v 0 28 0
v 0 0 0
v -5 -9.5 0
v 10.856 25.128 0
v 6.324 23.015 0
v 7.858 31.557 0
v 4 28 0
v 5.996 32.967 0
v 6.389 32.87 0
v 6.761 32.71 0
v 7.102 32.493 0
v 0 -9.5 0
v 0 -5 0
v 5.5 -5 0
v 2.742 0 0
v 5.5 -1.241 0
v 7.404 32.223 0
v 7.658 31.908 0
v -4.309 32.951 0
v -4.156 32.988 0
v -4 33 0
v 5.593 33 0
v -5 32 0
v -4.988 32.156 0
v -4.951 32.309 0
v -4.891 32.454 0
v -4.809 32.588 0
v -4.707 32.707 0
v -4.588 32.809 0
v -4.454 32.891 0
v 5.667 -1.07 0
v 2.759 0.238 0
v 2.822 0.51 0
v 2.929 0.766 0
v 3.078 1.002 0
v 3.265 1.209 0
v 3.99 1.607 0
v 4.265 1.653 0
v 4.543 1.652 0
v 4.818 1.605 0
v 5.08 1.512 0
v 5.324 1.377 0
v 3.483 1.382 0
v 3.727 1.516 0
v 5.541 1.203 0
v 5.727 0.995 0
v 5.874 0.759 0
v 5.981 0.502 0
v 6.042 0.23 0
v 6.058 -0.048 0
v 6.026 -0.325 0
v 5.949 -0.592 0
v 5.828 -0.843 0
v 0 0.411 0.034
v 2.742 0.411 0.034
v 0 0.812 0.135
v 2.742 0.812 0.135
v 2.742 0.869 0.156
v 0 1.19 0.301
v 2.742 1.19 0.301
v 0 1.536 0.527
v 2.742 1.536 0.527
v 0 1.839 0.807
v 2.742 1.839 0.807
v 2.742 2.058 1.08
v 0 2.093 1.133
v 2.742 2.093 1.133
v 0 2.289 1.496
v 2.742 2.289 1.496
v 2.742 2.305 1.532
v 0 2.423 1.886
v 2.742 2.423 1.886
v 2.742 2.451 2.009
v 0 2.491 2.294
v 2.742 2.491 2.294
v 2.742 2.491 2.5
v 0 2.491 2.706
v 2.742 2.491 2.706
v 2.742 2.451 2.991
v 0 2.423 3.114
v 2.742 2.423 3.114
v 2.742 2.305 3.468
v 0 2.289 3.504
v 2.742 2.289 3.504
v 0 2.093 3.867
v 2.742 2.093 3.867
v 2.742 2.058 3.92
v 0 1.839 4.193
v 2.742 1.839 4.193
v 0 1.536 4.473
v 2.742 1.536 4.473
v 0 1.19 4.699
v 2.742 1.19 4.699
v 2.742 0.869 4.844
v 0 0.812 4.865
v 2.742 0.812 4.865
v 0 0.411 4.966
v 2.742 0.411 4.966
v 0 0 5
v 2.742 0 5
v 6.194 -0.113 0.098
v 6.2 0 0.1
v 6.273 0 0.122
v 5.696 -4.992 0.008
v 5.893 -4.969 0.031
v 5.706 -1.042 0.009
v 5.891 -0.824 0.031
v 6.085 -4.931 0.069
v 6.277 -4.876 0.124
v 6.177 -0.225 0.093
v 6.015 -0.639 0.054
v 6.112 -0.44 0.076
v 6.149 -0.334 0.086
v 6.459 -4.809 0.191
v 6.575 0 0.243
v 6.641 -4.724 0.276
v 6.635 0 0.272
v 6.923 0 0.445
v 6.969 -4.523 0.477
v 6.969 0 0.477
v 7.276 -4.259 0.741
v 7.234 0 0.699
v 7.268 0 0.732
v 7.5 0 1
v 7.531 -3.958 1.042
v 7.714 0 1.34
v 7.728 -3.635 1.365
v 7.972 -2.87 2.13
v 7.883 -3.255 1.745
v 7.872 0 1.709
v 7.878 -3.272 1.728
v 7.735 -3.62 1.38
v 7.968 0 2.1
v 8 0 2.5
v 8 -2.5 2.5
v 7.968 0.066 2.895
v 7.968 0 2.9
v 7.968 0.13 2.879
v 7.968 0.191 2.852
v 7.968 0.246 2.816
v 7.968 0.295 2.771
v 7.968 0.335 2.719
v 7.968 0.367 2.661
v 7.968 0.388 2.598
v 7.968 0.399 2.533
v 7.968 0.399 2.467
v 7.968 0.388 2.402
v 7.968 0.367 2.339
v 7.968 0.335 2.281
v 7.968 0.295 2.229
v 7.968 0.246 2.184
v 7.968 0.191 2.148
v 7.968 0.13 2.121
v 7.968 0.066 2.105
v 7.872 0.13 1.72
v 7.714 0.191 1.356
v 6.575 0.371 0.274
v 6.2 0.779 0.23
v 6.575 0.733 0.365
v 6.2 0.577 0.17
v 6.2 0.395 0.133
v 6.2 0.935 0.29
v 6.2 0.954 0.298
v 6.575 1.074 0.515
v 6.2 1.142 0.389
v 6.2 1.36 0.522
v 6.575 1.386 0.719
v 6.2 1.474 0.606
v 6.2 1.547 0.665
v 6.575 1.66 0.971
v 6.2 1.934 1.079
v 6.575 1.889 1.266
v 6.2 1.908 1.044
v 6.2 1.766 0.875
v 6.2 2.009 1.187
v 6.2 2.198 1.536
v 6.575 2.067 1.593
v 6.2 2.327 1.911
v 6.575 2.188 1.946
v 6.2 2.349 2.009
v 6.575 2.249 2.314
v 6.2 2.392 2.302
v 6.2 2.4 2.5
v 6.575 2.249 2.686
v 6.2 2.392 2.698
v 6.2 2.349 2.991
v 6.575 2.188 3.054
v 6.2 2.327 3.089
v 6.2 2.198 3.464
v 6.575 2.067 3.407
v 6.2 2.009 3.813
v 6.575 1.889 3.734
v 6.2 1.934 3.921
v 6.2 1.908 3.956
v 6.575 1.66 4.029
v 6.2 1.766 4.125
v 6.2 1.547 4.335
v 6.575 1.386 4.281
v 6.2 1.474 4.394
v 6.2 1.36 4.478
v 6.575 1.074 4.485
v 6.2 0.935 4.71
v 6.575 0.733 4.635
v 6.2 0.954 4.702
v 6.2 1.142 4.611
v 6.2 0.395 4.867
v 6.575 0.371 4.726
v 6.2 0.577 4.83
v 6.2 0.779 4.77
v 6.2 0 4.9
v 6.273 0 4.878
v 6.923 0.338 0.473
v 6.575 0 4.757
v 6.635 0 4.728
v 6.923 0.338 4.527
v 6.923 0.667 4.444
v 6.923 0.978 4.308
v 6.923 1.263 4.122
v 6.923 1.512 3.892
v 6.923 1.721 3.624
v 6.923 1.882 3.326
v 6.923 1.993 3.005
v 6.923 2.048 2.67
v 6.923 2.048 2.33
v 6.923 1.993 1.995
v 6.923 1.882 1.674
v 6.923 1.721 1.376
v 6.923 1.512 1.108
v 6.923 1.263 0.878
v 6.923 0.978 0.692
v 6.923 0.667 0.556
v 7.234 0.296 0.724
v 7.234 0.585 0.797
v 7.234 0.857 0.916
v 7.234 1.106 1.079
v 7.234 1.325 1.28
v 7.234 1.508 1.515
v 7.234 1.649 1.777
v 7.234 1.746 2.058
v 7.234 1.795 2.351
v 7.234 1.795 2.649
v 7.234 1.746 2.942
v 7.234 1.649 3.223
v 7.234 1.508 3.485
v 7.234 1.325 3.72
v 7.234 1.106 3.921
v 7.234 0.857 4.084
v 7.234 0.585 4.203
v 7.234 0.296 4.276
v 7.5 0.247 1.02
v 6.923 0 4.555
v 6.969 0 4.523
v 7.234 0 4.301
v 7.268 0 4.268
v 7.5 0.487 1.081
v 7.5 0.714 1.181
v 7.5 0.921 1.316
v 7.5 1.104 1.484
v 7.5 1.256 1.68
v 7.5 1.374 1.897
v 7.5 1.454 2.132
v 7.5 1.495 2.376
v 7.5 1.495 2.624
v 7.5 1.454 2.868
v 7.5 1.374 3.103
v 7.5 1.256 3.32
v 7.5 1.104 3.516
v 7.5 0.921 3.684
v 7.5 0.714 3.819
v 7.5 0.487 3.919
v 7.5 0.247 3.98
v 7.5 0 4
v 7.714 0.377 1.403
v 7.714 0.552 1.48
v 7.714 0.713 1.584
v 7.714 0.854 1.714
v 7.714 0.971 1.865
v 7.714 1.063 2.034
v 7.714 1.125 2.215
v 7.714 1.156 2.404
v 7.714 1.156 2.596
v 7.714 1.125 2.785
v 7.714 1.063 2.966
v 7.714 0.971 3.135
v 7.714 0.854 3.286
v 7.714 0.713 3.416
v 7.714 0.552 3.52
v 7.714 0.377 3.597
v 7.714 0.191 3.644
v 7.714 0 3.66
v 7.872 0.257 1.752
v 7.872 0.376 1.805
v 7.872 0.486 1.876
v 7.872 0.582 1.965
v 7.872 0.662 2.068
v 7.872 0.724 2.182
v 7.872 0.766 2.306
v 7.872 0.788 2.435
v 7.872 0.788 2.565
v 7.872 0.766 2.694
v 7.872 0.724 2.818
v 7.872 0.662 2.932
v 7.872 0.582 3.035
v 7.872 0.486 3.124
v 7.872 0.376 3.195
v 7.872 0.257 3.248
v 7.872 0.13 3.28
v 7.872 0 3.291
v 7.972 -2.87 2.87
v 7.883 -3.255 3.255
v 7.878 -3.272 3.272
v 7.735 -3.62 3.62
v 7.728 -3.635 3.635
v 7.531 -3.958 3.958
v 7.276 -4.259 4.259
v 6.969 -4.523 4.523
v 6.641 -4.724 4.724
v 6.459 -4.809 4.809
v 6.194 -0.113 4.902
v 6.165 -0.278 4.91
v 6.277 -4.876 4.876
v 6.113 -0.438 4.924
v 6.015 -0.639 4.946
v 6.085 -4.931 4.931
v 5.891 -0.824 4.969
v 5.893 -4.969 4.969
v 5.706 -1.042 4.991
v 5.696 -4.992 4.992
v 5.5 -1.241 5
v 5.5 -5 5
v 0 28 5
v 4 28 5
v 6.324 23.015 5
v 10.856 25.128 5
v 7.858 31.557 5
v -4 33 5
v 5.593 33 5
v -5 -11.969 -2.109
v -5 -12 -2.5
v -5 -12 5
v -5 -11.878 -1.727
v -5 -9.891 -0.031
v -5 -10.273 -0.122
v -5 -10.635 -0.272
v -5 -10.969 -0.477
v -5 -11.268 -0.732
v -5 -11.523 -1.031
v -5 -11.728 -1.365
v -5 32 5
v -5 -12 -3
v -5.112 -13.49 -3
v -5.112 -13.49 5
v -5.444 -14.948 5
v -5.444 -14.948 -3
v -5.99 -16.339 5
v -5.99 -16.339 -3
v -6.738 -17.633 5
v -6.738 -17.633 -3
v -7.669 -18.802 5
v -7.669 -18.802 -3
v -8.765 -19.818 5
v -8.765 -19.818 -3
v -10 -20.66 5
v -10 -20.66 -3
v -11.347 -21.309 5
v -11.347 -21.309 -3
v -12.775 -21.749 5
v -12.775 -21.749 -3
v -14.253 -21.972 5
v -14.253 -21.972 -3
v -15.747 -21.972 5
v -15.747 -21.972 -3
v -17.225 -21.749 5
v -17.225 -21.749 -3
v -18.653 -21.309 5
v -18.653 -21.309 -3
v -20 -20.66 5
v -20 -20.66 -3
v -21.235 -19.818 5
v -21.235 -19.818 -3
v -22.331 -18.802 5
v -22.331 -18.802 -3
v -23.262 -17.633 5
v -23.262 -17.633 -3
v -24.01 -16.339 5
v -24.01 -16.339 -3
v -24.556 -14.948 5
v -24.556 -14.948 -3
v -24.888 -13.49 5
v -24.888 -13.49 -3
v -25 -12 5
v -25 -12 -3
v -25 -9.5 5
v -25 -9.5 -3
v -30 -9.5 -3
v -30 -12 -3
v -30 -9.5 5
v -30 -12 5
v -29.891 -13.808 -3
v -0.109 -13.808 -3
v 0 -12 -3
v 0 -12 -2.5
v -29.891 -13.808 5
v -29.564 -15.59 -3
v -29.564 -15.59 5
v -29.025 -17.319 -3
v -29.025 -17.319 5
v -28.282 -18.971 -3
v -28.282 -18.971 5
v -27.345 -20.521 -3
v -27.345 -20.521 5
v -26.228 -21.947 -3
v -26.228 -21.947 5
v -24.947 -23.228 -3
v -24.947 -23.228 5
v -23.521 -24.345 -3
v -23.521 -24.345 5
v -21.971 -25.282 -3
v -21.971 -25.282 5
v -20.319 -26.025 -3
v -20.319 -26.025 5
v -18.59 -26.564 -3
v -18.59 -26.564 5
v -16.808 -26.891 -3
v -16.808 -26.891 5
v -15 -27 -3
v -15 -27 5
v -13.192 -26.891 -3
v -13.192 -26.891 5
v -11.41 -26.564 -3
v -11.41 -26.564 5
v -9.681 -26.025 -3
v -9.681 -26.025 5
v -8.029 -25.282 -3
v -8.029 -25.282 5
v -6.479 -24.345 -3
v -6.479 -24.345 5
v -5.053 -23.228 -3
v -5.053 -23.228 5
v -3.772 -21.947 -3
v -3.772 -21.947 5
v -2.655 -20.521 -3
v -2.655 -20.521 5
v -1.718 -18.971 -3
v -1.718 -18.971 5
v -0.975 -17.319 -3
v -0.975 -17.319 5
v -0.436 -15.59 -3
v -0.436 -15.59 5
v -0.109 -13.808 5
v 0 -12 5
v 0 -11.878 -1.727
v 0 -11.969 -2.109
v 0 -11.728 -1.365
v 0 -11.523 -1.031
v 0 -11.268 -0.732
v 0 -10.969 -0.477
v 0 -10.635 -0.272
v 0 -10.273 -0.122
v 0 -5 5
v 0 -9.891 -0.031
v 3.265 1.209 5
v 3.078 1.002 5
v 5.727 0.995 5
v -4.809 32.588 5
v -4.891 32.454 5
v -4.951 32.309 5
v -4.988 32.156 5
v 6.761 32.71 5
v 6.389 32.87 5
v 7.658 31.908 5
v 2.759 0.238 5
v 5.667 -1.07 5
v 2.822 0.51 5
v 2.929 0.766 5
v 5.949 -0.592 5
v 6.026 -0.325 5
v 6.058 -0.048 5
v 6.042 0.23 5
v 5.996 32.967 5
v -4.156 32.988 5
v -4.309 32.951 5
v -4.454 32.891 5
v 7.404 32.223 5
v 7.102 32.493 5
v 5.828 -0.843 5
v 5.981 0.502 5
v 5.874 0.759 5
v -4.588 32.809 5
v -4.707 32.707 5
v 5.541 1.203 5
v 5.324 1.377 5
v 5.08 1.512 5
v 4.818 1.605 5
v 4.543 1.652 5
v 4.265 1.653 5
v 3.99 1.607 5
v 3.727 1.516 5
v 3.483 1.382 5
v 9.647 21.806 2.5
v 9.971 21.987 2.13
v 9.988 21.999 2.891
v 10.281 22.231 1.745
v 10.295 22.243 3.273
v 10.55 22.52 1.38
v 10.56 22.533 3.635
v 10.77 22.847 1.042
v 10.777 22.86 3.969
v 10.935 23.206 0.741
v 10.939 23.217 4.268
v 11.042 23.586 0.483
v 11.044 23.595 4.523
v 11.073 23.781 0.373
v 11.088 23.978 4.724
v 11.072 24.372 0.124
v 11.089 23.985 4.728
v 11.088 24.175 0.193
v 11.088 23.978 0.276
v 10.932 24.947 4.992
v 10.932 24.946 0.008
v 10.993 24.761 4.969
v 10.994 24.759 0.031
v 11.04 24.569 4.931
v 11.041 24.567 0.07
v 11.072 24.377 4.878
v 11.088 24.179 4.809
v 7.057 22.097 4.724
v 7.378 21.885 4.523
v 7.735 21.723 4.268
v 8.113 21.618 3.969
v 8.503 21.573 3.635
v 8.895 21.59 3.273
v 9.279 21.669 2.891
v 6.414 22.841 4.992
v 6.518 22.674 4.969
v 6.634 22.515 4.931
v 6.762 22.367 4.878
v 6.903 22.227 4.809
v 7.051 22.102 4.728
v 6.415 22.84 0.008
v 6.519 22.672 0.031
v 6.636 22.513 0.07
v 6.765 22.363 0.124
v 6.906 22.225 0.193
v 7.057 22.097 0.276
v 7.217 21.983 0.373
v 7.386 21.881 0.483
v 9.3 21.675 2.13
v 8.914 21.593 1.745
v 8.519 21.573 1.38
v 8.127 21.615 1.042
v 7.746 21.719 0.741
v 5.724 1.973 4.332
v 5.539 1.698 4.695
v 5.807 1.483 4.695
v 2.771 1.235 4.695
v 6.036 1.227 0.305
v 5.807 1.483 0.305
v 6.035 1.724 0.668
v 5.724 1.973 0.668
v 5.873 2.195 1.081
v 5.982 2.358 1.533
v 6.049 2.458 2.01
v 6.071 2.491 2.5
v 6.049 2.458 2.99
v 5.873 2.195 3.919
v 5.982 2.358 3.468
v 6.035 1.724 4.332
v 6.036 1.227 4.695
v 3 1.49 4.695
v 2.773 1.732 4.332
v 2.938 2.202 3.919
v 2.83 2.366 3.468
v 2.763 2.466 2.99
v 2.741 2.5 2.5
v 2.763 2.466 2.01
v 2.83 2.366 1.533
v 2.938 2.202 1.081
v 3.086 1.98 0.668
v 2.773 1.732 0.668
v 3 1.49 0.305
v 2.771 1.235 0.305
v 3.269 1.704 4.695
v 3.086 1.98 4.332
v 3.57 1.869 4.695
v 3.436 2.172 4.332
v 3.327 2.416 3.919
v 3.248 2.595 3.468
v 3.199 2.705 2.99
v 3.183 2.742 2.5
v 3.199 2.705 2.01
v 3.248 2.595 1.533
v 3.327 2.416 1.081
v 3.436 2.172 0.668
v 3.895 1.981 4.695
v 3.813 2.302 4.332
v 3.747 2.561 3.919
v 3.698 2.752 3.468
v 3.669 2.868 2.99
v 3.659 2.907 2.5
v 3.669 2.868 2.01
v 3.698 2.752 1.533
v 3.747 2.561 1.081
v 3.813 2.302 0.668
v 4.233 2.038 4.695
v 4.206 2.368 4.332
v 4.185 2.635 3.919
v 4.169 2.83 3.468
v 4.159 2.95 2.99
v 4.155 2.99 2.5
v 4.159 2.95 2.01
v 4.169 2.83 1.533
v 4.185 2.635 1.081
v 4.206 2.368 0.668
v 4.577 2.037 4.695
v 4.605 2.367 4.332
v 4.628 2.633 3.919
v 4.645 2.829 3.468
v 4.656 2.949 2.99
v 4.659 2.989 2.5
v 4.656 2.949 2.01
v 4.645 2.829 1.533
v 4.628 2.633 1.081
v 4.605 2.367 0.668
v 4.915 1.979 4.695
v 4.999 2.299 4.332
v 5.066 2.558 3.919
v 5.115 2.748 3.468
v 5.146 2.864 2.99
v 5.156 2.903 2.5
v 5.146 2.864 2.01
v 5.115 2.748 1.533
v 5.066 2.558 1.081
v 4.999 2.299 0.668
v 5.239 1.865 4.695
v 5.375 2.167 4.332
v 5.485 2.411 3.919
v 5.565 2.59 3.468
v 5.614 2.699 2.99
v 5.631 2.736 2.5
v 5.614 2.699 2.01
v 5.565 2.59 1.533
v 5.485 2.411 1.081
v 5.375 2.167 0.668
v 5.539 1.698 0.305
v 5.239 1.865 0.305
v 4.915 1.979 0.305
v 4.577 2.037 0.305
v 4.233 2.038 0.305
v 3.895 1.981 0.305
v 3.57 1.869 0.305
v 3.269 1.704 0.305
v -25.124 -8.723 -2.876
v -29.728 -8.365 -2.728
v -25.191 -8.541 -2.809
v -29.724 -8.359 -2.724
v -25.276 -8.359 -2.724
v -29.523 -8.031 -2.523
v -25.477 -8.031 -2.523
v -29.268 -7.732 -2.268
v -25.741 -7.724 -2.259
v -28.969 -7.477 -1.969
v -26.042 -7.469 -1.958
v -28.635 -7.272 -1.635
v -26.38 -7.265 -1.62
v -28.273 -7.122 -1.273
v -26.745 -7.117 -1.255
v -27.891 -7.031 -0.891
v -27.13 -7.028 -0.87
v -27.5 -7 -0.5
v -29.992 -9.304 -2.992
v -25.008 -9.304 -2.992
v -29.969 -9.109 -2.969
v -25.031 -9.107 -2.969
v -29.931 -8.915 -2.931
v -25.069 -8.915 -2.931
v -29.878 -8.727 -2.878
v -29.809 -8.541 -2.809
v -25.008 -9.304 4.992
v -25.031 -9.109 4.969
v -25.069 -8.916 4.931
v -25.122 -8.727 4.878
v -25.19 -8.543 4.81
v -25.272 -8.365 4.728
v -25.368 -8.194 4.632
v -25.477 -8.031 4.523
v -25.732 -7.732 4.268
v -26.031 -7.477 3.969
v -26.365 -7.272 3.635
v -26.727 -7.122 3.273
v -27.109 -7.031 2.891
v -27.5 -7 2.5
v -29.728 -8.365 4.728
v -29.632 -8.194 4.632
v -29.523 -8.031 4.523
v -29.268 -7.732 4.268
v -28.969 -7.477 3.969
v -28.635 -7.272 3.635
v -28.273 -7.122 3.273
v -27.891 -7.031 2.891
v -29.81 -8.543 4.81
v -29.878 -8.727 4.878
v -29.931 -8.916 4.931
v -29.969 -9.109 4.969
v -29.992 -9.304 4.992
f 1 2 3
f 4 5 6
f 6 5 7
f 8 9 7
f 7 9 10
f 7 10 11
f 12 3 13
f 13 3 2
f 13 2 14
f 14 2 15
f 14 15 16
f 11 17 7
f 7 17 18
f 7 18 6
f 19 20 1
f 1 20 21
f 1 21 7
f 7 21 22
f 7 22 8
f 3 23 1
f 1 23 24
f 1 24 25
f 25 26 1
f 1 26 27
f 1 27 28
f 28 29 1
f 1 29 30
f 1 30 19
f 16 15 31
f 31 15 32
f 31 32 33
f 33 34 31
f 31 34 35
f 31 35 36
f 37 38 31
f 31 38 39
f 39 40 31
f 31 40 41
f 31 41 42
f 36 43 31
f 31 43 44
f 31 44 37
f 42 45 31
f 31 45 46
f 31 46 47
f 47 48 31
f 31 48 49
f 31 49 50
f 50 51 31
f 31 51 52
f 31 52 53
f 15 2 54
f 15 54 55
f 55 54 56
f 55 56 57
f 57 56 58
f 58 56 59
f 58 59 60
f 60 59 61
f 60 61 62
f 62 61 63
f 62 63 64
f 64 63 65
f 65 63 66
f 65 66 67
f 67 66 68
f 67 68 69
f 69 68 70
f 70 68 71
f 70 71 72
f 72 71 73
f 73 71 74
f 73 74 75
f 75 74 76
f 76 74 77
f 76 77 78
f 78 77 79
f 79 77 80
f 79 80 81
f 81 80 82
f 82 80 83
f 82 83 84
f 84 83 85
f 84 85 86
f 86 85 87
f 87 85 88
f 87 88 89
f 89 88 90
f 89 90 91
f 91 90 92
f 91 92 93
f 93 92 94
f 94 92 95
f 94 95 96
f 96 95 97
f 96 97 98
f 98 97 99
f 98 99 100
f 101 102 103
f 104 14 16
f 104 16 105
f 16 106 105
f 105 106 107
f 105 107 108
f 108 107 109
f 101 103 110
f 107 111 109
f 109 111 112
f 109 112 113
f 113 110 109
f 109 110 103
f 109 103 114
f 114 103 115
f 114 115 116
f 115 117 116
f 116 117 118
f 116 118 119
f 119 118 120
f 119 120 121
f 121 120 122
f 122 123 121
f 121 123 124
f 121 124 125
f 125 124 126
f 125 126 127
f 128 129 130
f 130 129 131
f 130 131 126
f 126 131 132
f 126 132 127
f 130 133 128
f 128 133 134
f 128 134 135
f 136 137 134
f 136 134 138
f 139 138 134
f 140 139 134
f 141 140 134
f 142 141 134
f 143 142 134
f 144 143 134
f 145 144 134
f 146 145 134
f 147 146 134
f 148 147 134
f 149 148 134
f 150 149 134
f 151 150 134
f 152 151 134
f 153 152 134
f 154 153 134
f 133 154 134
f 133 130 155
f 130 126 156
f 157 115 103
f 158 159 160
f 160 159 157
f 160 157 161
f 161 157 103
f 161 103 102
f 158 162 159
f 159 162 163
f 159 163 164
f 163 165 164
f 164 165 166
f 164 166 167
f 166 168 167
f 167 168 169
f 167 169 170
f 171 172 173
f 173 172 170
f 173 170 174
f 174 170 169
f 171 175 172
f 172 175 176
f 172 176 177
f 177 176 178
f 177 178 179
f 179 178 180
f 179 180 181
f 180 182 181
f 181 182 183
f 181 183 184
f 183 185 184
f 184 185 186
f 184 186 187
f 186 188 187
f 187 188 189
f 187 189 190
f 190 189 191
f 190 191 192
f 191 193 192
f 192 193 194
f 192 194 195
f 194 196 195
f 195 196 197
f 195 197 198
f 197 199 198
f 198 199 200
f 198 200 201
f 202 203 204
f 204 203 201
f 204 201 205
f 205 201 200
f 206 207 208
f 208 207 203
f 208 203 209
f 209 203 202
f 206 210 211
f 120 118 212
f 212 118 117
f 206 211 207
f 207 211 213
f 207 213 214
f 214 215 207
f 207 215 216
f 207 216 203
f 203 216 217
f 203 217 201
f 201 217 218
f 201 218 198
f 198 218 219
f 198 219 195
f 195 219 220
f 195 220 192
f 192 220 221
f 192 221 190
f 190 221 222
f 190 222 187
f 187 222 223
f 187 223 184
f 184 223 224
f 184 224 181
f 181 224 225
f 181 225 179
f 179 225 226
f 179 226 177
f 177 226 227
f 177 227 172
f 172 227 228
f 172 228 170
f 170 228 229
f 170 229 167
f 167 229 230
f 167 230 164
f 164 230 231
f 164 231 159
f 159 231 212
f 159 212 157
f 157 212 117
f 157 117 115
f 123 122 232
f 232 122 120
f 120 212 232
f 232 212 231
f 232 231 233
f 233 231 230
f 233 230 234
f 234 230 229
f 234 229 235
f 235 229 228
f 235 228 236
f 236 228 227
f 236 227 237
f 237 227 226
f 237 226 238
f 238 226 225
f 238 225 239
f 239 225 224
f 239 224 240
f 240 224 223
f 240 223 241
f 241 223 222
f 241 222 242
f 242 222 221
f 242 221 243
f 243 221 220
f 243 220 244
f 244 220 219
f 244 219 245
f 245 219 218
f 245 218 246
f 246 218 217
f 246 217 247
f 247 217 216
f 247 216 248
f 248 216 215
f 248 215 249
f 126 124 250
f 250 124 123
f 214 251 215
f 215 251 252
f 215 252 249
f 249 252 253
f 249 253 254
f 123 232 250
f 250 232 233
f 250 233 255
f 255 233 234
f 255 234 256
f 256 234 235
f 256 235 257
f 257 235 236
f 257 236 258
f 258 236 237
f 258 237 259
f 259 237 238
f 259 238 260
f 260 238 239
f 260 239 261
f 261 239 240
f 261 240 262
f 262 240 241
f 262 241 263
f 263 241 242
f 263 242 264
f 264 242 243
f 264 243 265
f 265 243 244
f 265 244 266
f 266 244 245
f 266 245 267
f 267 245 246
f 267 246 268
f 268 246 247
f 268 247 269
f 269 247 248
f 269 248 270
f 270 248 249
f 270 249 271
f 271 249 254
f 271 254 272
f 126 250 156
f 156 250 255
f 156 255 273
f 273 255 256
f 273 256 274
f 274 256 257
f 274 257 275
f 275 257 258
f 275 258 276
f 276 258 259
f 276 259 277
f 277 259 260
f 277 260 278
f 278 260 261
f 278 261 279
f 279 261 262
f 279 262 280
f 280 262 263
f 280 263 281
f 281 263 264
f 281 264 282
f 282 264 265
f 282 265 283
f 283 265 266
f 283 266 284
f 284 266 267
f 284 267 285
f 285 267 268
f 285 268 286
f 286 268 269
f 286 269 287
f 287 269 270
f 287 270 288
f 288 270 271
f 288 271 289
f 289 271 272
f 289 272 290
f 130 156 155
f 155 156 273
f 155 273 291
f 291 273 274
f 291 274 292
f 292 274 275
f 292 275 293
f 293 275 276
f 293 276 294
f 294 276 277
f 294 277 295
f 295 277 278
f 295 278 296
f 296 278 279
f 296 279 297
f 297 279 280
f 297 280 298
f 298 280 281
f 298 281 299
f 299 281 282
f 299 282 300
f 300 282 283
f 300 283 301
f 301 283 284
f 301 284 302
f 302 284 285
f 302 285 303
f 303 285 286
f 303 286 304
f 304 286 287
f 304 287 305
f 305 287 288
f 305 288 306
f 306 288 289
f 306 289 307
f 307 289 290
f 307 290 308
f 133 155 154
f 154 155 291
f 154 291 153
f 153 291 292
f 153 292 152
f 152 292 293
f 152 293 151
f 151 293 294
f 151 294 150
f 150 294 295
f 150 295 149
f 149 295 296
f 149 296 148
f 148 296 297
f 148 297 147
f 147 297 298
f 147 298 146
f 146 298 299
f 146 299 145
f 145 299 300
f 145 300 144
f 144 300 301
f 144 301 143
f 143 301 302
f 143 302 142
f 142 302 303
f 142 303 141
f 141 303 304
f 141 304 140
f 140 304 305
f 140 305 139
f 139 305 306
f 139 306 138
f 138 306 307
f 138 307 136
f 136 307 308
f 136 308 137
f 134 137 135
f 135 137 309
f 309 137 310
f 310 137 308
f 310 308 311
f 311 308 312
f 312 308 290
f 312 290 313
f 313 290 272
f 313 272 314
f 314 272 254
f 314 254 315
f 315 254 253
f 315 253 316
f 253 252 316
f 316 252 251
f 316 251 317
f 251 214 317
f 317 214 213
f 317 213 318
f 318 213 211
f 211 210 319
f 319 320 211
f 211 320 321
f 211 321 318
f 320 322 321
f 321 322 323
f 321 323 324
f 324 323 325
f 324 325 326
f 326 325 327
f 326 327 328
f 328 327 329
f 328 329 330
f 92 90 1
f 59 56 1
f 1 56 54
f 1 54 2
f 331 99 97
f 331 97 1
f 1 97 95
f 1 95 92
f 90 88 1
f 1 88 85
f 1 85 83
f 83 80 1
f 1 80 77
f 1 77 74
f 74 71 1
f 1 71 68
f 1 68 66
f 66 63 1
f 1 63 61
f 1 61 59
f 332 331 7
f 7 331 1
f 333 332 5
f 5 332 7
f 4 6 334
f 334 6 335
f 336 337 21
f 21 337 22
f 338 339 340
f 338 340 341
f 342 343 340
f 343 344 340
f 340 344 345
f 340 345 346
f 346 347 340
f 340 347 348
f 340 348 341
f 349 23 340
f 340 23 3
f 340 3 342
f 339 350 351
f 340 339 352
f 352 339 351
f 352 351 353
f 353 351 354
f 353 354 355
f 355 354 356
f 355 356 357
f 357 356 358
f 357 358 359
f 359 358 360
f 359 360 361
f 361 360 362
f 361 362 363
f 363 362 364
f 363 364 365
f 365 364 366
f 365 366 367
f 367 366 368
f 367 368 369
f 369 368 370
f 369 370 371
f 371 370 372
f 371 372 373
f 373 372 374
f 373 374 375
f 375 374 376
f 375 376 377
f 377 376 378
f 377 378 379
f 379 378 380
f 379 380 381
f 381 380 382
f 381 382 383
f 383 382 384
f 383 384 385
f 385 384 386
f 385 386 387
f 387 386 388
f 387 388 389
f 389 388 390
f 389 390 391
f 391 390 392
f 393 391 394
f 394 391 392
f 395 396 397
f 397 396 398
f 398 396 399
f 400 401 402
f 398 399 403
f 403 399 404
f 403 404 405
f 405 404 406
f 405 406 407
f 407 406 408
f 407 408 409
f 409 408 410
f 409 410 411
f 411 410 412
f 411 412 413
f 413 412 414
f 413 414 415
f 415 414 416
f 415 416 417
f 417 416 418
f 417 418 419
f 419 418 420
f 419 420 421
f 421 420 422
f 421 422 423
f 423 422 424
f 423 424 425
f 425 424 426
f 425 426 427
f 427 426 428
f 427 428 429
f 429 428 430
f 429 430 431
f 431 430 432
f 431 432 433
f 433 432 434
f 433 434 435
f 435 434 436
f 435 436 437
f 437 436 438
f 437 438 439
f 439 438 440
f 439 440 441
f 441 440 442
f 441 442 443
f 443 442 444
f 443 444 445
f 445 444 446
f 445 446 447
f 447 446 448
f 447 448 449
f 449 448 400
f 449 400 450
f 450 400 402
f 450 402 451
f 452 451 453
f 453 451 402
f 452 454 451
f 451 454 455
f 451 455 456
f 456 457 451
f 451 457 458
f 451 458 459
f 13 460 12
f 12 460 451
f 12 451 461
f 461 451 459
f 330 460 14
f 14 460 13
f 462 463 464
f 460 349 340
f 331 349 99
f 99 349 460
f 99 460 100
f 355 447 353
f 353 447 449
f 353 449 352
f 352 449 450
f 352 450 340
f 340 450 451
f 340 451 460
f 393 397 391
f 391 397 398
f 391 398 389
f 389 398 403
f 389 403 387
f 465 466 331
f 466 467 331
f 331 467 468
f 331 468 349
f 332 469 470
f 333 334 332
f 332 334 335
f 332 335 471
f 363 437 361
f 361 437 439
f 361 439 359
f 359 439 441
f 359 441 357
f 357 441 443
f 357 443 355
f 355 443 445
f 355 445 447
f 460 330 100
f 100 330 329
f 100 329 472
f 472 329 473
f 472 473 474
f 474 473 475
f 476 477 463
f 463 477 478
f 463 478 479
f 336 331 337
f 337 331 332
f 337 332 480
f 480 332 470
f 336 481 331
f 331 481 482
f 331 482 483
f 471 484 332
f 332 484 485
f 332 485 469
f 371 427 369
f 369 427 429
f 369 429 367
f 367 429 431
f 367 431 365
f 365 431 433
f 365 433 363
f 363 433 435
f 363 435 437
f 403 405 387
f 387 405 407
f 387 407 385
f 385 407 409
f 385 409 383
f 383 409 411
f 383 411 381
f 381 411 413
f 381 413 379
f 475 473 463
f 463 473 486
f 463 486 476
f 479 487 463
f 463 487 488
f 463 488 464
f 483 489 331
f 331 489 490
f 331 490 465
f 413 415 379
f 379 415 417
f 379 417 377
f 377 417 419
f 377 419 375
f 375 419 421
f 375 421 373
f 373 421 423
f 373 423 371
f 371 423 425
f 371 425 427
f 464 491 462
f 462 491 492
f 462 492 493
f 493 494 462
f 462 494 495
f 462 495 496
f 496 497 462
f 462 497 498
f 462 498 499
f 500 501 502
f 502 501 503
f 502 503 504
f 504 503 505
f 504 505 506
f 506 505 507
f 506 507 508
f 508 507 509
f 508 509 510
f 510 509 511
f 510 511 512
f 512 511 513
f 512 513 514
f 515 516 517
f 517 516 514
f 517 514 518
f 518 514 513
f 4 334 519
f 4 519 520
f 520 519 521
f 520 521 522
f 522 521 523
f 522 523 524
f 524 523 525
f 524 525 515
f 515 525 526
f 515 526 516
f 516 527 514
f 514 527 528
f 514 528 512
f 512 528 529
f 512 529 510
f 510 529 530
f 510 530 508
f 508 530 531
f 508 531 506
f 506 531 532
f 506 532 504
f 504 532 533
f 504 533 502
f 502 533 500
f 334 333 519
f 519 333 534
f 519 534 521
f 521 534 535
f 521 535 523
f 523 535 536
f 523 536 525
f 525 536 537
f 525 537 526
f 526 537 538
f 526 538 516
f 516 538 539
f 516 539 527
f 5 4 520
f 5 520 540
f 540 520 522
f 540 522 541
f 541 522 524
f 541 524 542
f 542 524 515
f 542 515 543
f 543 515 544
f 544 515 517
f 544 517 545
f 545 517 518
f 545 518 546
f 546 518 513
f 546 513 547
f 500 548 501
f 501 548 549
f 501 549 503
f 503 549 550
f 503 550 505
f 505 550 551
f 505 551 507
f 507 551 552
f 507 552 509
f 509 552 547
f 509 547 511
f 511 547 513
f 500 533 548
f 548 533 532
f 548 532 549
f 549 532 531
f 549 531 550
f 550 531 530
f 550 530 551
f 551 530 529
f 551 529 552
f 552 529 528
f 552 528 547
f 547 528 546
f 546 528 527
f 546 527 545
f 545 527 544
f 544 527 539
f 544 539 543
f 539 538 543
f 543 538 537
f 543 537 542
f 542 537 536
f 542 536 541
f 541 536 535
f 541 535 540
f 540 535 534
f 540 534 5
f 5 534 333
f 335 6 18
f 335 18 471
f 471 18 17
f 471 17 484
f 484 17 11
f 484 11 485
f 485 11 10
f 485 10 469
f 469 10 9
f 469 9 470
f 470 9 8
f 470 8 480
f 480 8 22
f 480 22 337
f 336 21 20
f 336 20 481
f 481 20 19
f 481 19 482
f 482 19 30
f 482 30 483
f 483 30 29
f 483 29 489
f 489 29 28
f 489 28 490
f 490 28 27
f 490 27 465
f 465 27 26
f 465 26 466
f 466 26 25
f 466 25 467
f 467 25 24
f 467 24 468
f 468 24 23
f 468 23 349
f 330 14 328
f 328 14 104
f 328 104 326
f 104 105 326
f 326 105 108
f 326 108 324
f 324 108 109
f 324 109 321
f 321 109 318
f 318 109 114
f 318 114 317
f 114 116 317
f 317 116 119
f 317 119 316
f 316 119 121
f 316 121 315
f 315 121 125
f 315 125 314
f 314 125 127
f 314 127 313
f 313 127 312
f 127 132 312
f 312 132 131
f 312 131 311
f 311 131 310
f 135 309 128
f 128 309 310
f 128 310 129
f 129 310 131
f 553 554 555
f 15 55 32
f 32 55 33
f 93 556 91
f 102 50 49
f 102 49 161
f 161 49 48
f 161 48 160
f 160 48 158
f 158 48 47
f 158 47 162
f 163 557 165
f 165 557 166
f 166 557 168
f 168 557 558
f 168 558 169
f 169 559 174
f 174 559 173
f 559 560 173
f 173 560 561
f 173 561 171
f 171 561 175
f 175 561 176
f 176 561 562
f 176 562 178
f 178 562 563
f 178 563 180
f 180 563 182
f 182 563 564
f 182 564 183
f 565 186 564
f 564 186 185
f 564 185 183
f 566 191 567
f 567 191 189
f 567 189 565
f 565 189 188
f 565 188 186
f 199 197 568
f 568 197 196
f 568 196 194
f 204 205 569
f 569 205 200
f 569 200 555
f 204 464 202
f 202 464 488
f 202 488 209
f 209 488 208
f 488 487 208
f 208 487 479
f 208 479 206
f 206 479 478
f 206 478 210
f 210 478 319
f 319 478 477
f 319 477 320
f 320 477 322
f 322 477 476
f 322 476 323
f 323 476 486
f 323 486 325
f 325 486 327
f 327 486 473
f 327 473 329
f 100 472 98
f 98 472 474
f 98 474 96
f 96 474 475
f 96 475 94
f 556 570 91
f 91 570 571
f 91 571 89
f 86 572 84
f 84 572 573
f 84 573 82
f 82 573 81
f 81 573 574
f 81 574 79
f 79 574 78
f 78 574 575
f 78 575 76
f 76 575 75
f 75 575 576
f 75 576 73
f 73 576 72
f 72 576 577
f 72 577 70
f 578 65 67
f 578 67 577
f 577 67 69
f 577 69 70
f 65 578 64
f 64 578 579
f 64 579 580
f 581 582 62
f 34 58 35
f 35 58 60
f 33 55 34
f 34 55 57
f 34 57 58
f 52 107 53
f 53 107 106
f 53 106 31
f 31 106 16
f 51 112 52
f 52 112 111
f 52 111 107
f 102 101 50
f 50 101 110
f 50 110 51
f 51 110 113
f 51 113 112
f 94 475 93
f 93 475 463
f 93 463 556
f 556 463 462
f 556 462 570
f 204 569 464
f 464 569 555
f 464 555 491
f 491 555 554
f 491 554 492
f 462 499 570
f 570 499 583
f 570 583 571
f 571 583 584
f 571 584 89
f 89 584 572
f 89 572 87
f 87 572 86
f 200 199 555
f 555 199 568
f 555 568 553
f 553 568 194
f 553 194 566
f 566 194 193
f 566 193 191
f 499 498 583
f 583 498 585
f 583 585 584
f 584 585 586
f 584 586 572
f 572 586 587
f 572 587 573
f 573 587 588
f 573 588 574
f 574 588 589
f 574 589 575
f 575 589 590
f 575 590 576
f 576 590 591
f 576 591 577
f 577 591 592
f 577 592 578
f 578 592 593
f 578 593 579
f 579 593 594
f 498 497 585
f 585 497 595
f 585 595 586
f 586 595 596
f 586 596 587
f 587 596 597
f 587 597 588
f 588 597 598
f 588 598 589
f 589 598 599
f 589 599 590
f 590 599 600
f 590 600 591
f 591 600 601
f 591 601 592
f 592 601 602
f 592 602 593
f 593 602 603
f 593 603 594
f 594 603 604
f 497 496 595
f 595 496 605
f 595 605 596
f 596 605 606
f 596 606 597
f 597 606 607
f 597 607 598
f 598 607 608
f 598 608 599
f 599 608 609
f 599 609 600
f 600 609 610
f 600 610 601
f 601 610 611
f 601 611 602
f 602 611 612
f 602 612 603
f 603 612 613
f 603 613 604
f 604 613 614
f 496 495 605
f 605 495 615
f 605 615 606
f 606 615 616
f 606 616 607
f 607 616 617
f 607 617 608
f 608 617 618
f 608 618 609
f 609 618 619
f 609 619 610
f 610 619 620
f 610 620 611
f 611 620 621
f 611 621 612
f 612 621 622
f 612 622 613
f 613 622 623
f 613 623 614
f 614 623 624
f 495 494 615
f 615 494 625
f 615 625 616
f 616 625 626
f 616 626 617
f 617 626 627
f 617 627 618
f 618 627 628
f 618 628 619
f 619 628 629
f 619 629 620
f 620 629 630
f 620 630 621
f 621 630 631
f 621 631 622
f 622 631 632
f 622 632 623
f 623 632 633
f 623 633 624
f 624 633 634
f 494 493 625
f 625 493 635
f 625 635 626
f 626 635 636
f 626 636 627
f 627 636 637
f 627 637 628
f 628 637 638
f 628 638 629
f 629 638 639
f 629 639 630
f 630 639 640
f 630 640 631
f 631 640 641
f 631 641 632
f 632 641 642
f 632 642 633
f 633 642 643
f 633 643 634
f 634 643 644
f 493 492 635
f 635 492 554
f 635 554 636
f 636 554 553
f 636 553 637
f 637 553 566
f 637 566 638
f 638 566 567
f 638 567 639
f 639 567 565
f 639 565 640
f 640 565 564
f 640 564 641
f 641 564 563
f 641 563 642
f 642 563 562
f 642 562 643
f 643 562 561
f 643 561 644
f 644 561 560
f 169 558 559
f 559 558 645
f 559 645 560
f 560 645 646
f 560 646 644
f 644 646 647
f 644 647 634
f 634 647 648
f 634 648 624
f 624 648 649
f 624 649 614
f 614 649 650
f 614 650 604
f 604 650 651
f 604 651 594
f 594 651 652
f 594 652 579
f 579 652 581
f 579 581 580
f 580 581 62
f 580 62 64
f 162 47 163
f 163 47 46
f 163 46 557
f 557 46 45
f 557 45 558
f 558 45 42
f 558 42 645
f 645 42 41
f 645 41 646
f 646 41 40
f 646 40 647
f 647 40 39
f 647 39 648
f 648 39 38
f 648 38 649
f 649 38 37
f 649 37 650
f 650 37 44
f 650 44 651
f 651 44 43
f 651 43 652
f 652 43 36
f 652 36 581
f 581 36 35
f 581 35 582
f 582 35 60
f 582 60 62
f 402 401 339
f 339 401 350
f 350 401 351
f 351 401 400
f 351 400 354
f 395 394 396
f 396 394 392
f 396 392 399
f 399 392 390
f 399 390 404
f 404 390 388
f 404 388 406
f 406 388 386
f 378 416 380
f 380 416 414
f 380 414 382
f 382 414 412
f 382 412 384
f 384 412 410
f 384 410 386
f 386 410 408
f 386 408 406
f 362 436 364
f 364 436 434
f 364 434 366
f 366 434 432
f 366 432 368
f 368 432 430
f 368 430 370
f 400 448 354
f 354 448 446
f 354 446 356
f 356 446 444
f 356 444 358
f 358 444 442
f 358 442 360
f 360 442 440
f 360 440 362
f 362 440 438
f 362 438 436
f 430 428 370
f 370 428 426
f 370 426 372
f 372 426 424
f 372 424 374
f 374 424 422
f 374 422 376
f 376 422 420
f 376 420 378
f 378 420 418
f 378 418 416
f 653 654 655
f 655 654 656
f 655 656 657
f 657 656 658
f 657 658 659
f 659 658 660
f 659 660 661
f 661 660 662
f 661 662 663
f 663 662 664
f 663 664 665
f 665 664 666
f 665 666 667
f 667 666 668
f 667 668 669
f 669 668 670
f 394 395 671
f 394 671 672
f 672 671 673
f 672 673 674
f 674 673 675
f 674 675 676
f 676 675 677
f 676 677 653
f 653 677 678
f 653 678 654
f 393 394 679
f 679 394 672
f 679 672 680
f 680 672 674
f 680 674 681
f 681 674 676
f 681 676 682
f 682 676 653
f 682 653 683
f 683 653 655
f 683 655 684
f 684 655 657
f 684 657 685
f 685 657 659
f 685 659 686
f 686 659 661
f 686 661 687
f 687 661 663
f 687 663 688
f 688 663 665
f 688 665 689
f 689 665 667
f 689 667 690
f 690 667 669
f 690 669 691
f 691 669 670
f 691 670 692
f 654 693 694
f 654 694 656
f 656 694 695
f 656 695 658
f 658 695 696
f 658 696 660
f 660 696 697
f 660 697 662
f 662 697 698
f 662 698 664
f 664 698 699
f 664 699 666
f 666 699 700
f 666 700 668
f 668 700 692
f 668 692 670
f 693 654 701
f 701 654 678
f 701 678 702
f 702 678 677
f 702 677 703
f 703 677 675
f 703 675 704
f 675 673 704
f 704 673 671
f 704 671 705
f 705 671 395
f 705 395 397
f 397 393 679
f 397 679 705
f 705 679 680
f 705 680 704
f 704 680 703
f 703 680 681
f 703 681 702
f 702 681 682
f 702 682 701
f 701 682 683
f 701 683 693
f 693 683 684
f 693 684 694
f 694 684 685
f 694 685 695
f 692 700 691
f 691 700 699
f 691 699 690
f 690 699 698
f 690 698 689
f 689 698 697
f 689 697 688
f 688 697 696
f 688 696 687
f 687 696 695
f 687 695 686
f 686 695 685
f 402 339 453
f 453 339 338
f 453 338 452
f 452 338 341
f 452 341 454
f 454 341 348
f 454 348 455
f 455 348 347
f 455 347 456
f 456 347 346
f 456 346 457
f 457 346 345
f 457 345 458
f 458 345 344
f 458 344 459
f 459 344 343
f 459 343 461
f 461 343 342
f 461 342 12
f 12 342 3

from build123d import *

# Parameters (mm, degrees)
EXTRUDE_1_DEPTH     = 5
FILLET_1_R          = 2.5
FILLET_2_R          = 1
EXTRUDE_2_DEPTH     = 8
FILLET_3_R          = 2.5
SKETCH_5_W          = 1.467751534
SKETCH_5_H          = 4.178210798
SKETCH_5_W_2        = 1.389566385
CUT_EXTRUDE_1_DEPTH = 20
EXTRUDE_START       = 3
EXTRUDE_3_DEPTH     = 3
FILLET_4_R          = 2.5


with BuildPart() as part:
    # 草图1 → 凸台-拉伸1 (new body)
    with BuildSketch(Plane.XY):
        with BuildLine():
            Line((0, 0), (0, 28))
            Line((0, 28), (4, 28))
            Line((4, 28), (7.380946094, 20.749537704))
            Line((7.380946094, 20.749537704), (11.912485029, 22.862629012))
            Line((11.912485029, 22.862629012), (7.185351304, 33))
            Line((7.185351304, 33), (-5, 33))
            Line((-5, 33), (-5, -12))
            ThreePointArc((-5, -12), (-15, -22), (-25, -12))
            Line((-25, -12), (-25, -7))
            Line((-25, -7), (-30, -7))
            Line((-30, -7), (-30, -12))
            ThreePointArc((-30, -12), (-15, -27), (0, -12))
            Line((0, -12), (0, -5))
            Line((0, -5), (8, -5))
            Line((8, -5), (8, 0))
            Line((8, 0), (0, 0))
        make_face()
    extrude(amount=EXTRUDE_1_DEPTH)

    # 圆角1
    fillet_1_edges = [part.edges().sort_by_distance(p)[0] for p in [
        (9.646715562, 21.806083358, 0),
        (9.646715562, 21.806083358, 5),
        (7.185351304, 33, 2.5),
        (11.912485029, 22.862629012, 2.5),
        (7.380946094, 20.749537704, 2.5),
    ]]
    fillet(fillet_1_edges, radius=FILLET_1_R - 0.0001)  # a hair under: the kernel refuses the full size

    # 圆角2
    fillet_2_edges = [part.edges().sort_by_distance(p)[0] for p in [
        (-5, 33, 2.5),
    ]]
    fillet(fillet_2_edges, radius=FILLET_2_R)

    # 草图3 → 凸台-拉伸2 (add)
    with BuildSketch(Plane(origin=(0, 0, 0), x_dir=(0, 0, -1), z_dir=(1, 0, 0))):
        with BuildLine():
            Line((-5, 0), (0, 0))
            ThreePointArc((0, 0), (-2.5, 2.5), (-5, 0))
        make_face()
    extrude(amount=EXTRUDE_2_DEPTH)

    # 圆角3
    fillet_3_edges = [part.edges().sort_by_distance(p)[0] for p in [
        (8, -2.5, 0),
        (8, -5, 2.5),
        (8, -2.5, 5),
        (8, 2.5, 2.5),
    ]]
    fillet(fillet_3_edges, radius=FILLET_3_R - 0.0001)  # a hair under: the kernel refuses the full size

    # 草图4 → 旋转3 (revolve)
    with BuildSketch(Plane(origin=(4.4, 0, 0), x_dir=(0, 0, -1), z_dir=(1, 0, 0))):
        with BuildLine():
            Line((-5.5, 0), (0.5, 0))
            ThreePointArc((0.5, 0), (-2.5, 3), (-5.5, 0))
        make_face()
    revolve(axis=Axis((4.4, 0, 2.5), (0, 0, -1)))

    # 草图5 → 切除-拉伸1 (cut)
    with BuildSketch(Plane.ZY.offset(5)):
        with Locations((-0.733875767, -0.010051234)):
            Rectangle(SKETCH_5_W, SKETCH_5_H)
        with Locations((5.694783193, -0.010051234)):
            Rectangle(SKETCH_5_W_2, SKETCH_5_H)
    extrude(amount=-CUT_EXTRUDE_1_DEPTH, mode=Mode.SUBTRACT)

    # 草图6 → 凸台-拉伸3 (add)
    with BuildSketch(Plane(origin=(0, 0, 0), x_dir=(-1, 0, 0), z_dir=(0, 0, -1)).offset(EXTRUDE_START)):
        with BuildLine():
            Line((25, -7), (30, -7))
            Line((30, -7), (30, -12))
            ThreePointArc((30, -12), (15, -27), (0, -12))
            Line((0, -12), (5, -12))
            ThreePointArc((5, -12), (15, -22), (25, -12))
            Line((25, -12), (25, -7))
        make_face()
    extrude(amount=-EXTRUDE_3_DEPTH)

    # 圆角4
    fillet_4_edges = [part.edges().sort_by_distance(p)[0] for p in [
        (-2.5, -12, 0),
        (-27.5, -7, -3),
        (-30, -7, 1),
        (-25, -7, 1),
        (-27.5, -7, 5),
    ]]
    fillet(fillet_4_edges, radius=FILLET_4_R - 0.0001)  # a hair under: the kernel refuses the full size


solid = part.part
